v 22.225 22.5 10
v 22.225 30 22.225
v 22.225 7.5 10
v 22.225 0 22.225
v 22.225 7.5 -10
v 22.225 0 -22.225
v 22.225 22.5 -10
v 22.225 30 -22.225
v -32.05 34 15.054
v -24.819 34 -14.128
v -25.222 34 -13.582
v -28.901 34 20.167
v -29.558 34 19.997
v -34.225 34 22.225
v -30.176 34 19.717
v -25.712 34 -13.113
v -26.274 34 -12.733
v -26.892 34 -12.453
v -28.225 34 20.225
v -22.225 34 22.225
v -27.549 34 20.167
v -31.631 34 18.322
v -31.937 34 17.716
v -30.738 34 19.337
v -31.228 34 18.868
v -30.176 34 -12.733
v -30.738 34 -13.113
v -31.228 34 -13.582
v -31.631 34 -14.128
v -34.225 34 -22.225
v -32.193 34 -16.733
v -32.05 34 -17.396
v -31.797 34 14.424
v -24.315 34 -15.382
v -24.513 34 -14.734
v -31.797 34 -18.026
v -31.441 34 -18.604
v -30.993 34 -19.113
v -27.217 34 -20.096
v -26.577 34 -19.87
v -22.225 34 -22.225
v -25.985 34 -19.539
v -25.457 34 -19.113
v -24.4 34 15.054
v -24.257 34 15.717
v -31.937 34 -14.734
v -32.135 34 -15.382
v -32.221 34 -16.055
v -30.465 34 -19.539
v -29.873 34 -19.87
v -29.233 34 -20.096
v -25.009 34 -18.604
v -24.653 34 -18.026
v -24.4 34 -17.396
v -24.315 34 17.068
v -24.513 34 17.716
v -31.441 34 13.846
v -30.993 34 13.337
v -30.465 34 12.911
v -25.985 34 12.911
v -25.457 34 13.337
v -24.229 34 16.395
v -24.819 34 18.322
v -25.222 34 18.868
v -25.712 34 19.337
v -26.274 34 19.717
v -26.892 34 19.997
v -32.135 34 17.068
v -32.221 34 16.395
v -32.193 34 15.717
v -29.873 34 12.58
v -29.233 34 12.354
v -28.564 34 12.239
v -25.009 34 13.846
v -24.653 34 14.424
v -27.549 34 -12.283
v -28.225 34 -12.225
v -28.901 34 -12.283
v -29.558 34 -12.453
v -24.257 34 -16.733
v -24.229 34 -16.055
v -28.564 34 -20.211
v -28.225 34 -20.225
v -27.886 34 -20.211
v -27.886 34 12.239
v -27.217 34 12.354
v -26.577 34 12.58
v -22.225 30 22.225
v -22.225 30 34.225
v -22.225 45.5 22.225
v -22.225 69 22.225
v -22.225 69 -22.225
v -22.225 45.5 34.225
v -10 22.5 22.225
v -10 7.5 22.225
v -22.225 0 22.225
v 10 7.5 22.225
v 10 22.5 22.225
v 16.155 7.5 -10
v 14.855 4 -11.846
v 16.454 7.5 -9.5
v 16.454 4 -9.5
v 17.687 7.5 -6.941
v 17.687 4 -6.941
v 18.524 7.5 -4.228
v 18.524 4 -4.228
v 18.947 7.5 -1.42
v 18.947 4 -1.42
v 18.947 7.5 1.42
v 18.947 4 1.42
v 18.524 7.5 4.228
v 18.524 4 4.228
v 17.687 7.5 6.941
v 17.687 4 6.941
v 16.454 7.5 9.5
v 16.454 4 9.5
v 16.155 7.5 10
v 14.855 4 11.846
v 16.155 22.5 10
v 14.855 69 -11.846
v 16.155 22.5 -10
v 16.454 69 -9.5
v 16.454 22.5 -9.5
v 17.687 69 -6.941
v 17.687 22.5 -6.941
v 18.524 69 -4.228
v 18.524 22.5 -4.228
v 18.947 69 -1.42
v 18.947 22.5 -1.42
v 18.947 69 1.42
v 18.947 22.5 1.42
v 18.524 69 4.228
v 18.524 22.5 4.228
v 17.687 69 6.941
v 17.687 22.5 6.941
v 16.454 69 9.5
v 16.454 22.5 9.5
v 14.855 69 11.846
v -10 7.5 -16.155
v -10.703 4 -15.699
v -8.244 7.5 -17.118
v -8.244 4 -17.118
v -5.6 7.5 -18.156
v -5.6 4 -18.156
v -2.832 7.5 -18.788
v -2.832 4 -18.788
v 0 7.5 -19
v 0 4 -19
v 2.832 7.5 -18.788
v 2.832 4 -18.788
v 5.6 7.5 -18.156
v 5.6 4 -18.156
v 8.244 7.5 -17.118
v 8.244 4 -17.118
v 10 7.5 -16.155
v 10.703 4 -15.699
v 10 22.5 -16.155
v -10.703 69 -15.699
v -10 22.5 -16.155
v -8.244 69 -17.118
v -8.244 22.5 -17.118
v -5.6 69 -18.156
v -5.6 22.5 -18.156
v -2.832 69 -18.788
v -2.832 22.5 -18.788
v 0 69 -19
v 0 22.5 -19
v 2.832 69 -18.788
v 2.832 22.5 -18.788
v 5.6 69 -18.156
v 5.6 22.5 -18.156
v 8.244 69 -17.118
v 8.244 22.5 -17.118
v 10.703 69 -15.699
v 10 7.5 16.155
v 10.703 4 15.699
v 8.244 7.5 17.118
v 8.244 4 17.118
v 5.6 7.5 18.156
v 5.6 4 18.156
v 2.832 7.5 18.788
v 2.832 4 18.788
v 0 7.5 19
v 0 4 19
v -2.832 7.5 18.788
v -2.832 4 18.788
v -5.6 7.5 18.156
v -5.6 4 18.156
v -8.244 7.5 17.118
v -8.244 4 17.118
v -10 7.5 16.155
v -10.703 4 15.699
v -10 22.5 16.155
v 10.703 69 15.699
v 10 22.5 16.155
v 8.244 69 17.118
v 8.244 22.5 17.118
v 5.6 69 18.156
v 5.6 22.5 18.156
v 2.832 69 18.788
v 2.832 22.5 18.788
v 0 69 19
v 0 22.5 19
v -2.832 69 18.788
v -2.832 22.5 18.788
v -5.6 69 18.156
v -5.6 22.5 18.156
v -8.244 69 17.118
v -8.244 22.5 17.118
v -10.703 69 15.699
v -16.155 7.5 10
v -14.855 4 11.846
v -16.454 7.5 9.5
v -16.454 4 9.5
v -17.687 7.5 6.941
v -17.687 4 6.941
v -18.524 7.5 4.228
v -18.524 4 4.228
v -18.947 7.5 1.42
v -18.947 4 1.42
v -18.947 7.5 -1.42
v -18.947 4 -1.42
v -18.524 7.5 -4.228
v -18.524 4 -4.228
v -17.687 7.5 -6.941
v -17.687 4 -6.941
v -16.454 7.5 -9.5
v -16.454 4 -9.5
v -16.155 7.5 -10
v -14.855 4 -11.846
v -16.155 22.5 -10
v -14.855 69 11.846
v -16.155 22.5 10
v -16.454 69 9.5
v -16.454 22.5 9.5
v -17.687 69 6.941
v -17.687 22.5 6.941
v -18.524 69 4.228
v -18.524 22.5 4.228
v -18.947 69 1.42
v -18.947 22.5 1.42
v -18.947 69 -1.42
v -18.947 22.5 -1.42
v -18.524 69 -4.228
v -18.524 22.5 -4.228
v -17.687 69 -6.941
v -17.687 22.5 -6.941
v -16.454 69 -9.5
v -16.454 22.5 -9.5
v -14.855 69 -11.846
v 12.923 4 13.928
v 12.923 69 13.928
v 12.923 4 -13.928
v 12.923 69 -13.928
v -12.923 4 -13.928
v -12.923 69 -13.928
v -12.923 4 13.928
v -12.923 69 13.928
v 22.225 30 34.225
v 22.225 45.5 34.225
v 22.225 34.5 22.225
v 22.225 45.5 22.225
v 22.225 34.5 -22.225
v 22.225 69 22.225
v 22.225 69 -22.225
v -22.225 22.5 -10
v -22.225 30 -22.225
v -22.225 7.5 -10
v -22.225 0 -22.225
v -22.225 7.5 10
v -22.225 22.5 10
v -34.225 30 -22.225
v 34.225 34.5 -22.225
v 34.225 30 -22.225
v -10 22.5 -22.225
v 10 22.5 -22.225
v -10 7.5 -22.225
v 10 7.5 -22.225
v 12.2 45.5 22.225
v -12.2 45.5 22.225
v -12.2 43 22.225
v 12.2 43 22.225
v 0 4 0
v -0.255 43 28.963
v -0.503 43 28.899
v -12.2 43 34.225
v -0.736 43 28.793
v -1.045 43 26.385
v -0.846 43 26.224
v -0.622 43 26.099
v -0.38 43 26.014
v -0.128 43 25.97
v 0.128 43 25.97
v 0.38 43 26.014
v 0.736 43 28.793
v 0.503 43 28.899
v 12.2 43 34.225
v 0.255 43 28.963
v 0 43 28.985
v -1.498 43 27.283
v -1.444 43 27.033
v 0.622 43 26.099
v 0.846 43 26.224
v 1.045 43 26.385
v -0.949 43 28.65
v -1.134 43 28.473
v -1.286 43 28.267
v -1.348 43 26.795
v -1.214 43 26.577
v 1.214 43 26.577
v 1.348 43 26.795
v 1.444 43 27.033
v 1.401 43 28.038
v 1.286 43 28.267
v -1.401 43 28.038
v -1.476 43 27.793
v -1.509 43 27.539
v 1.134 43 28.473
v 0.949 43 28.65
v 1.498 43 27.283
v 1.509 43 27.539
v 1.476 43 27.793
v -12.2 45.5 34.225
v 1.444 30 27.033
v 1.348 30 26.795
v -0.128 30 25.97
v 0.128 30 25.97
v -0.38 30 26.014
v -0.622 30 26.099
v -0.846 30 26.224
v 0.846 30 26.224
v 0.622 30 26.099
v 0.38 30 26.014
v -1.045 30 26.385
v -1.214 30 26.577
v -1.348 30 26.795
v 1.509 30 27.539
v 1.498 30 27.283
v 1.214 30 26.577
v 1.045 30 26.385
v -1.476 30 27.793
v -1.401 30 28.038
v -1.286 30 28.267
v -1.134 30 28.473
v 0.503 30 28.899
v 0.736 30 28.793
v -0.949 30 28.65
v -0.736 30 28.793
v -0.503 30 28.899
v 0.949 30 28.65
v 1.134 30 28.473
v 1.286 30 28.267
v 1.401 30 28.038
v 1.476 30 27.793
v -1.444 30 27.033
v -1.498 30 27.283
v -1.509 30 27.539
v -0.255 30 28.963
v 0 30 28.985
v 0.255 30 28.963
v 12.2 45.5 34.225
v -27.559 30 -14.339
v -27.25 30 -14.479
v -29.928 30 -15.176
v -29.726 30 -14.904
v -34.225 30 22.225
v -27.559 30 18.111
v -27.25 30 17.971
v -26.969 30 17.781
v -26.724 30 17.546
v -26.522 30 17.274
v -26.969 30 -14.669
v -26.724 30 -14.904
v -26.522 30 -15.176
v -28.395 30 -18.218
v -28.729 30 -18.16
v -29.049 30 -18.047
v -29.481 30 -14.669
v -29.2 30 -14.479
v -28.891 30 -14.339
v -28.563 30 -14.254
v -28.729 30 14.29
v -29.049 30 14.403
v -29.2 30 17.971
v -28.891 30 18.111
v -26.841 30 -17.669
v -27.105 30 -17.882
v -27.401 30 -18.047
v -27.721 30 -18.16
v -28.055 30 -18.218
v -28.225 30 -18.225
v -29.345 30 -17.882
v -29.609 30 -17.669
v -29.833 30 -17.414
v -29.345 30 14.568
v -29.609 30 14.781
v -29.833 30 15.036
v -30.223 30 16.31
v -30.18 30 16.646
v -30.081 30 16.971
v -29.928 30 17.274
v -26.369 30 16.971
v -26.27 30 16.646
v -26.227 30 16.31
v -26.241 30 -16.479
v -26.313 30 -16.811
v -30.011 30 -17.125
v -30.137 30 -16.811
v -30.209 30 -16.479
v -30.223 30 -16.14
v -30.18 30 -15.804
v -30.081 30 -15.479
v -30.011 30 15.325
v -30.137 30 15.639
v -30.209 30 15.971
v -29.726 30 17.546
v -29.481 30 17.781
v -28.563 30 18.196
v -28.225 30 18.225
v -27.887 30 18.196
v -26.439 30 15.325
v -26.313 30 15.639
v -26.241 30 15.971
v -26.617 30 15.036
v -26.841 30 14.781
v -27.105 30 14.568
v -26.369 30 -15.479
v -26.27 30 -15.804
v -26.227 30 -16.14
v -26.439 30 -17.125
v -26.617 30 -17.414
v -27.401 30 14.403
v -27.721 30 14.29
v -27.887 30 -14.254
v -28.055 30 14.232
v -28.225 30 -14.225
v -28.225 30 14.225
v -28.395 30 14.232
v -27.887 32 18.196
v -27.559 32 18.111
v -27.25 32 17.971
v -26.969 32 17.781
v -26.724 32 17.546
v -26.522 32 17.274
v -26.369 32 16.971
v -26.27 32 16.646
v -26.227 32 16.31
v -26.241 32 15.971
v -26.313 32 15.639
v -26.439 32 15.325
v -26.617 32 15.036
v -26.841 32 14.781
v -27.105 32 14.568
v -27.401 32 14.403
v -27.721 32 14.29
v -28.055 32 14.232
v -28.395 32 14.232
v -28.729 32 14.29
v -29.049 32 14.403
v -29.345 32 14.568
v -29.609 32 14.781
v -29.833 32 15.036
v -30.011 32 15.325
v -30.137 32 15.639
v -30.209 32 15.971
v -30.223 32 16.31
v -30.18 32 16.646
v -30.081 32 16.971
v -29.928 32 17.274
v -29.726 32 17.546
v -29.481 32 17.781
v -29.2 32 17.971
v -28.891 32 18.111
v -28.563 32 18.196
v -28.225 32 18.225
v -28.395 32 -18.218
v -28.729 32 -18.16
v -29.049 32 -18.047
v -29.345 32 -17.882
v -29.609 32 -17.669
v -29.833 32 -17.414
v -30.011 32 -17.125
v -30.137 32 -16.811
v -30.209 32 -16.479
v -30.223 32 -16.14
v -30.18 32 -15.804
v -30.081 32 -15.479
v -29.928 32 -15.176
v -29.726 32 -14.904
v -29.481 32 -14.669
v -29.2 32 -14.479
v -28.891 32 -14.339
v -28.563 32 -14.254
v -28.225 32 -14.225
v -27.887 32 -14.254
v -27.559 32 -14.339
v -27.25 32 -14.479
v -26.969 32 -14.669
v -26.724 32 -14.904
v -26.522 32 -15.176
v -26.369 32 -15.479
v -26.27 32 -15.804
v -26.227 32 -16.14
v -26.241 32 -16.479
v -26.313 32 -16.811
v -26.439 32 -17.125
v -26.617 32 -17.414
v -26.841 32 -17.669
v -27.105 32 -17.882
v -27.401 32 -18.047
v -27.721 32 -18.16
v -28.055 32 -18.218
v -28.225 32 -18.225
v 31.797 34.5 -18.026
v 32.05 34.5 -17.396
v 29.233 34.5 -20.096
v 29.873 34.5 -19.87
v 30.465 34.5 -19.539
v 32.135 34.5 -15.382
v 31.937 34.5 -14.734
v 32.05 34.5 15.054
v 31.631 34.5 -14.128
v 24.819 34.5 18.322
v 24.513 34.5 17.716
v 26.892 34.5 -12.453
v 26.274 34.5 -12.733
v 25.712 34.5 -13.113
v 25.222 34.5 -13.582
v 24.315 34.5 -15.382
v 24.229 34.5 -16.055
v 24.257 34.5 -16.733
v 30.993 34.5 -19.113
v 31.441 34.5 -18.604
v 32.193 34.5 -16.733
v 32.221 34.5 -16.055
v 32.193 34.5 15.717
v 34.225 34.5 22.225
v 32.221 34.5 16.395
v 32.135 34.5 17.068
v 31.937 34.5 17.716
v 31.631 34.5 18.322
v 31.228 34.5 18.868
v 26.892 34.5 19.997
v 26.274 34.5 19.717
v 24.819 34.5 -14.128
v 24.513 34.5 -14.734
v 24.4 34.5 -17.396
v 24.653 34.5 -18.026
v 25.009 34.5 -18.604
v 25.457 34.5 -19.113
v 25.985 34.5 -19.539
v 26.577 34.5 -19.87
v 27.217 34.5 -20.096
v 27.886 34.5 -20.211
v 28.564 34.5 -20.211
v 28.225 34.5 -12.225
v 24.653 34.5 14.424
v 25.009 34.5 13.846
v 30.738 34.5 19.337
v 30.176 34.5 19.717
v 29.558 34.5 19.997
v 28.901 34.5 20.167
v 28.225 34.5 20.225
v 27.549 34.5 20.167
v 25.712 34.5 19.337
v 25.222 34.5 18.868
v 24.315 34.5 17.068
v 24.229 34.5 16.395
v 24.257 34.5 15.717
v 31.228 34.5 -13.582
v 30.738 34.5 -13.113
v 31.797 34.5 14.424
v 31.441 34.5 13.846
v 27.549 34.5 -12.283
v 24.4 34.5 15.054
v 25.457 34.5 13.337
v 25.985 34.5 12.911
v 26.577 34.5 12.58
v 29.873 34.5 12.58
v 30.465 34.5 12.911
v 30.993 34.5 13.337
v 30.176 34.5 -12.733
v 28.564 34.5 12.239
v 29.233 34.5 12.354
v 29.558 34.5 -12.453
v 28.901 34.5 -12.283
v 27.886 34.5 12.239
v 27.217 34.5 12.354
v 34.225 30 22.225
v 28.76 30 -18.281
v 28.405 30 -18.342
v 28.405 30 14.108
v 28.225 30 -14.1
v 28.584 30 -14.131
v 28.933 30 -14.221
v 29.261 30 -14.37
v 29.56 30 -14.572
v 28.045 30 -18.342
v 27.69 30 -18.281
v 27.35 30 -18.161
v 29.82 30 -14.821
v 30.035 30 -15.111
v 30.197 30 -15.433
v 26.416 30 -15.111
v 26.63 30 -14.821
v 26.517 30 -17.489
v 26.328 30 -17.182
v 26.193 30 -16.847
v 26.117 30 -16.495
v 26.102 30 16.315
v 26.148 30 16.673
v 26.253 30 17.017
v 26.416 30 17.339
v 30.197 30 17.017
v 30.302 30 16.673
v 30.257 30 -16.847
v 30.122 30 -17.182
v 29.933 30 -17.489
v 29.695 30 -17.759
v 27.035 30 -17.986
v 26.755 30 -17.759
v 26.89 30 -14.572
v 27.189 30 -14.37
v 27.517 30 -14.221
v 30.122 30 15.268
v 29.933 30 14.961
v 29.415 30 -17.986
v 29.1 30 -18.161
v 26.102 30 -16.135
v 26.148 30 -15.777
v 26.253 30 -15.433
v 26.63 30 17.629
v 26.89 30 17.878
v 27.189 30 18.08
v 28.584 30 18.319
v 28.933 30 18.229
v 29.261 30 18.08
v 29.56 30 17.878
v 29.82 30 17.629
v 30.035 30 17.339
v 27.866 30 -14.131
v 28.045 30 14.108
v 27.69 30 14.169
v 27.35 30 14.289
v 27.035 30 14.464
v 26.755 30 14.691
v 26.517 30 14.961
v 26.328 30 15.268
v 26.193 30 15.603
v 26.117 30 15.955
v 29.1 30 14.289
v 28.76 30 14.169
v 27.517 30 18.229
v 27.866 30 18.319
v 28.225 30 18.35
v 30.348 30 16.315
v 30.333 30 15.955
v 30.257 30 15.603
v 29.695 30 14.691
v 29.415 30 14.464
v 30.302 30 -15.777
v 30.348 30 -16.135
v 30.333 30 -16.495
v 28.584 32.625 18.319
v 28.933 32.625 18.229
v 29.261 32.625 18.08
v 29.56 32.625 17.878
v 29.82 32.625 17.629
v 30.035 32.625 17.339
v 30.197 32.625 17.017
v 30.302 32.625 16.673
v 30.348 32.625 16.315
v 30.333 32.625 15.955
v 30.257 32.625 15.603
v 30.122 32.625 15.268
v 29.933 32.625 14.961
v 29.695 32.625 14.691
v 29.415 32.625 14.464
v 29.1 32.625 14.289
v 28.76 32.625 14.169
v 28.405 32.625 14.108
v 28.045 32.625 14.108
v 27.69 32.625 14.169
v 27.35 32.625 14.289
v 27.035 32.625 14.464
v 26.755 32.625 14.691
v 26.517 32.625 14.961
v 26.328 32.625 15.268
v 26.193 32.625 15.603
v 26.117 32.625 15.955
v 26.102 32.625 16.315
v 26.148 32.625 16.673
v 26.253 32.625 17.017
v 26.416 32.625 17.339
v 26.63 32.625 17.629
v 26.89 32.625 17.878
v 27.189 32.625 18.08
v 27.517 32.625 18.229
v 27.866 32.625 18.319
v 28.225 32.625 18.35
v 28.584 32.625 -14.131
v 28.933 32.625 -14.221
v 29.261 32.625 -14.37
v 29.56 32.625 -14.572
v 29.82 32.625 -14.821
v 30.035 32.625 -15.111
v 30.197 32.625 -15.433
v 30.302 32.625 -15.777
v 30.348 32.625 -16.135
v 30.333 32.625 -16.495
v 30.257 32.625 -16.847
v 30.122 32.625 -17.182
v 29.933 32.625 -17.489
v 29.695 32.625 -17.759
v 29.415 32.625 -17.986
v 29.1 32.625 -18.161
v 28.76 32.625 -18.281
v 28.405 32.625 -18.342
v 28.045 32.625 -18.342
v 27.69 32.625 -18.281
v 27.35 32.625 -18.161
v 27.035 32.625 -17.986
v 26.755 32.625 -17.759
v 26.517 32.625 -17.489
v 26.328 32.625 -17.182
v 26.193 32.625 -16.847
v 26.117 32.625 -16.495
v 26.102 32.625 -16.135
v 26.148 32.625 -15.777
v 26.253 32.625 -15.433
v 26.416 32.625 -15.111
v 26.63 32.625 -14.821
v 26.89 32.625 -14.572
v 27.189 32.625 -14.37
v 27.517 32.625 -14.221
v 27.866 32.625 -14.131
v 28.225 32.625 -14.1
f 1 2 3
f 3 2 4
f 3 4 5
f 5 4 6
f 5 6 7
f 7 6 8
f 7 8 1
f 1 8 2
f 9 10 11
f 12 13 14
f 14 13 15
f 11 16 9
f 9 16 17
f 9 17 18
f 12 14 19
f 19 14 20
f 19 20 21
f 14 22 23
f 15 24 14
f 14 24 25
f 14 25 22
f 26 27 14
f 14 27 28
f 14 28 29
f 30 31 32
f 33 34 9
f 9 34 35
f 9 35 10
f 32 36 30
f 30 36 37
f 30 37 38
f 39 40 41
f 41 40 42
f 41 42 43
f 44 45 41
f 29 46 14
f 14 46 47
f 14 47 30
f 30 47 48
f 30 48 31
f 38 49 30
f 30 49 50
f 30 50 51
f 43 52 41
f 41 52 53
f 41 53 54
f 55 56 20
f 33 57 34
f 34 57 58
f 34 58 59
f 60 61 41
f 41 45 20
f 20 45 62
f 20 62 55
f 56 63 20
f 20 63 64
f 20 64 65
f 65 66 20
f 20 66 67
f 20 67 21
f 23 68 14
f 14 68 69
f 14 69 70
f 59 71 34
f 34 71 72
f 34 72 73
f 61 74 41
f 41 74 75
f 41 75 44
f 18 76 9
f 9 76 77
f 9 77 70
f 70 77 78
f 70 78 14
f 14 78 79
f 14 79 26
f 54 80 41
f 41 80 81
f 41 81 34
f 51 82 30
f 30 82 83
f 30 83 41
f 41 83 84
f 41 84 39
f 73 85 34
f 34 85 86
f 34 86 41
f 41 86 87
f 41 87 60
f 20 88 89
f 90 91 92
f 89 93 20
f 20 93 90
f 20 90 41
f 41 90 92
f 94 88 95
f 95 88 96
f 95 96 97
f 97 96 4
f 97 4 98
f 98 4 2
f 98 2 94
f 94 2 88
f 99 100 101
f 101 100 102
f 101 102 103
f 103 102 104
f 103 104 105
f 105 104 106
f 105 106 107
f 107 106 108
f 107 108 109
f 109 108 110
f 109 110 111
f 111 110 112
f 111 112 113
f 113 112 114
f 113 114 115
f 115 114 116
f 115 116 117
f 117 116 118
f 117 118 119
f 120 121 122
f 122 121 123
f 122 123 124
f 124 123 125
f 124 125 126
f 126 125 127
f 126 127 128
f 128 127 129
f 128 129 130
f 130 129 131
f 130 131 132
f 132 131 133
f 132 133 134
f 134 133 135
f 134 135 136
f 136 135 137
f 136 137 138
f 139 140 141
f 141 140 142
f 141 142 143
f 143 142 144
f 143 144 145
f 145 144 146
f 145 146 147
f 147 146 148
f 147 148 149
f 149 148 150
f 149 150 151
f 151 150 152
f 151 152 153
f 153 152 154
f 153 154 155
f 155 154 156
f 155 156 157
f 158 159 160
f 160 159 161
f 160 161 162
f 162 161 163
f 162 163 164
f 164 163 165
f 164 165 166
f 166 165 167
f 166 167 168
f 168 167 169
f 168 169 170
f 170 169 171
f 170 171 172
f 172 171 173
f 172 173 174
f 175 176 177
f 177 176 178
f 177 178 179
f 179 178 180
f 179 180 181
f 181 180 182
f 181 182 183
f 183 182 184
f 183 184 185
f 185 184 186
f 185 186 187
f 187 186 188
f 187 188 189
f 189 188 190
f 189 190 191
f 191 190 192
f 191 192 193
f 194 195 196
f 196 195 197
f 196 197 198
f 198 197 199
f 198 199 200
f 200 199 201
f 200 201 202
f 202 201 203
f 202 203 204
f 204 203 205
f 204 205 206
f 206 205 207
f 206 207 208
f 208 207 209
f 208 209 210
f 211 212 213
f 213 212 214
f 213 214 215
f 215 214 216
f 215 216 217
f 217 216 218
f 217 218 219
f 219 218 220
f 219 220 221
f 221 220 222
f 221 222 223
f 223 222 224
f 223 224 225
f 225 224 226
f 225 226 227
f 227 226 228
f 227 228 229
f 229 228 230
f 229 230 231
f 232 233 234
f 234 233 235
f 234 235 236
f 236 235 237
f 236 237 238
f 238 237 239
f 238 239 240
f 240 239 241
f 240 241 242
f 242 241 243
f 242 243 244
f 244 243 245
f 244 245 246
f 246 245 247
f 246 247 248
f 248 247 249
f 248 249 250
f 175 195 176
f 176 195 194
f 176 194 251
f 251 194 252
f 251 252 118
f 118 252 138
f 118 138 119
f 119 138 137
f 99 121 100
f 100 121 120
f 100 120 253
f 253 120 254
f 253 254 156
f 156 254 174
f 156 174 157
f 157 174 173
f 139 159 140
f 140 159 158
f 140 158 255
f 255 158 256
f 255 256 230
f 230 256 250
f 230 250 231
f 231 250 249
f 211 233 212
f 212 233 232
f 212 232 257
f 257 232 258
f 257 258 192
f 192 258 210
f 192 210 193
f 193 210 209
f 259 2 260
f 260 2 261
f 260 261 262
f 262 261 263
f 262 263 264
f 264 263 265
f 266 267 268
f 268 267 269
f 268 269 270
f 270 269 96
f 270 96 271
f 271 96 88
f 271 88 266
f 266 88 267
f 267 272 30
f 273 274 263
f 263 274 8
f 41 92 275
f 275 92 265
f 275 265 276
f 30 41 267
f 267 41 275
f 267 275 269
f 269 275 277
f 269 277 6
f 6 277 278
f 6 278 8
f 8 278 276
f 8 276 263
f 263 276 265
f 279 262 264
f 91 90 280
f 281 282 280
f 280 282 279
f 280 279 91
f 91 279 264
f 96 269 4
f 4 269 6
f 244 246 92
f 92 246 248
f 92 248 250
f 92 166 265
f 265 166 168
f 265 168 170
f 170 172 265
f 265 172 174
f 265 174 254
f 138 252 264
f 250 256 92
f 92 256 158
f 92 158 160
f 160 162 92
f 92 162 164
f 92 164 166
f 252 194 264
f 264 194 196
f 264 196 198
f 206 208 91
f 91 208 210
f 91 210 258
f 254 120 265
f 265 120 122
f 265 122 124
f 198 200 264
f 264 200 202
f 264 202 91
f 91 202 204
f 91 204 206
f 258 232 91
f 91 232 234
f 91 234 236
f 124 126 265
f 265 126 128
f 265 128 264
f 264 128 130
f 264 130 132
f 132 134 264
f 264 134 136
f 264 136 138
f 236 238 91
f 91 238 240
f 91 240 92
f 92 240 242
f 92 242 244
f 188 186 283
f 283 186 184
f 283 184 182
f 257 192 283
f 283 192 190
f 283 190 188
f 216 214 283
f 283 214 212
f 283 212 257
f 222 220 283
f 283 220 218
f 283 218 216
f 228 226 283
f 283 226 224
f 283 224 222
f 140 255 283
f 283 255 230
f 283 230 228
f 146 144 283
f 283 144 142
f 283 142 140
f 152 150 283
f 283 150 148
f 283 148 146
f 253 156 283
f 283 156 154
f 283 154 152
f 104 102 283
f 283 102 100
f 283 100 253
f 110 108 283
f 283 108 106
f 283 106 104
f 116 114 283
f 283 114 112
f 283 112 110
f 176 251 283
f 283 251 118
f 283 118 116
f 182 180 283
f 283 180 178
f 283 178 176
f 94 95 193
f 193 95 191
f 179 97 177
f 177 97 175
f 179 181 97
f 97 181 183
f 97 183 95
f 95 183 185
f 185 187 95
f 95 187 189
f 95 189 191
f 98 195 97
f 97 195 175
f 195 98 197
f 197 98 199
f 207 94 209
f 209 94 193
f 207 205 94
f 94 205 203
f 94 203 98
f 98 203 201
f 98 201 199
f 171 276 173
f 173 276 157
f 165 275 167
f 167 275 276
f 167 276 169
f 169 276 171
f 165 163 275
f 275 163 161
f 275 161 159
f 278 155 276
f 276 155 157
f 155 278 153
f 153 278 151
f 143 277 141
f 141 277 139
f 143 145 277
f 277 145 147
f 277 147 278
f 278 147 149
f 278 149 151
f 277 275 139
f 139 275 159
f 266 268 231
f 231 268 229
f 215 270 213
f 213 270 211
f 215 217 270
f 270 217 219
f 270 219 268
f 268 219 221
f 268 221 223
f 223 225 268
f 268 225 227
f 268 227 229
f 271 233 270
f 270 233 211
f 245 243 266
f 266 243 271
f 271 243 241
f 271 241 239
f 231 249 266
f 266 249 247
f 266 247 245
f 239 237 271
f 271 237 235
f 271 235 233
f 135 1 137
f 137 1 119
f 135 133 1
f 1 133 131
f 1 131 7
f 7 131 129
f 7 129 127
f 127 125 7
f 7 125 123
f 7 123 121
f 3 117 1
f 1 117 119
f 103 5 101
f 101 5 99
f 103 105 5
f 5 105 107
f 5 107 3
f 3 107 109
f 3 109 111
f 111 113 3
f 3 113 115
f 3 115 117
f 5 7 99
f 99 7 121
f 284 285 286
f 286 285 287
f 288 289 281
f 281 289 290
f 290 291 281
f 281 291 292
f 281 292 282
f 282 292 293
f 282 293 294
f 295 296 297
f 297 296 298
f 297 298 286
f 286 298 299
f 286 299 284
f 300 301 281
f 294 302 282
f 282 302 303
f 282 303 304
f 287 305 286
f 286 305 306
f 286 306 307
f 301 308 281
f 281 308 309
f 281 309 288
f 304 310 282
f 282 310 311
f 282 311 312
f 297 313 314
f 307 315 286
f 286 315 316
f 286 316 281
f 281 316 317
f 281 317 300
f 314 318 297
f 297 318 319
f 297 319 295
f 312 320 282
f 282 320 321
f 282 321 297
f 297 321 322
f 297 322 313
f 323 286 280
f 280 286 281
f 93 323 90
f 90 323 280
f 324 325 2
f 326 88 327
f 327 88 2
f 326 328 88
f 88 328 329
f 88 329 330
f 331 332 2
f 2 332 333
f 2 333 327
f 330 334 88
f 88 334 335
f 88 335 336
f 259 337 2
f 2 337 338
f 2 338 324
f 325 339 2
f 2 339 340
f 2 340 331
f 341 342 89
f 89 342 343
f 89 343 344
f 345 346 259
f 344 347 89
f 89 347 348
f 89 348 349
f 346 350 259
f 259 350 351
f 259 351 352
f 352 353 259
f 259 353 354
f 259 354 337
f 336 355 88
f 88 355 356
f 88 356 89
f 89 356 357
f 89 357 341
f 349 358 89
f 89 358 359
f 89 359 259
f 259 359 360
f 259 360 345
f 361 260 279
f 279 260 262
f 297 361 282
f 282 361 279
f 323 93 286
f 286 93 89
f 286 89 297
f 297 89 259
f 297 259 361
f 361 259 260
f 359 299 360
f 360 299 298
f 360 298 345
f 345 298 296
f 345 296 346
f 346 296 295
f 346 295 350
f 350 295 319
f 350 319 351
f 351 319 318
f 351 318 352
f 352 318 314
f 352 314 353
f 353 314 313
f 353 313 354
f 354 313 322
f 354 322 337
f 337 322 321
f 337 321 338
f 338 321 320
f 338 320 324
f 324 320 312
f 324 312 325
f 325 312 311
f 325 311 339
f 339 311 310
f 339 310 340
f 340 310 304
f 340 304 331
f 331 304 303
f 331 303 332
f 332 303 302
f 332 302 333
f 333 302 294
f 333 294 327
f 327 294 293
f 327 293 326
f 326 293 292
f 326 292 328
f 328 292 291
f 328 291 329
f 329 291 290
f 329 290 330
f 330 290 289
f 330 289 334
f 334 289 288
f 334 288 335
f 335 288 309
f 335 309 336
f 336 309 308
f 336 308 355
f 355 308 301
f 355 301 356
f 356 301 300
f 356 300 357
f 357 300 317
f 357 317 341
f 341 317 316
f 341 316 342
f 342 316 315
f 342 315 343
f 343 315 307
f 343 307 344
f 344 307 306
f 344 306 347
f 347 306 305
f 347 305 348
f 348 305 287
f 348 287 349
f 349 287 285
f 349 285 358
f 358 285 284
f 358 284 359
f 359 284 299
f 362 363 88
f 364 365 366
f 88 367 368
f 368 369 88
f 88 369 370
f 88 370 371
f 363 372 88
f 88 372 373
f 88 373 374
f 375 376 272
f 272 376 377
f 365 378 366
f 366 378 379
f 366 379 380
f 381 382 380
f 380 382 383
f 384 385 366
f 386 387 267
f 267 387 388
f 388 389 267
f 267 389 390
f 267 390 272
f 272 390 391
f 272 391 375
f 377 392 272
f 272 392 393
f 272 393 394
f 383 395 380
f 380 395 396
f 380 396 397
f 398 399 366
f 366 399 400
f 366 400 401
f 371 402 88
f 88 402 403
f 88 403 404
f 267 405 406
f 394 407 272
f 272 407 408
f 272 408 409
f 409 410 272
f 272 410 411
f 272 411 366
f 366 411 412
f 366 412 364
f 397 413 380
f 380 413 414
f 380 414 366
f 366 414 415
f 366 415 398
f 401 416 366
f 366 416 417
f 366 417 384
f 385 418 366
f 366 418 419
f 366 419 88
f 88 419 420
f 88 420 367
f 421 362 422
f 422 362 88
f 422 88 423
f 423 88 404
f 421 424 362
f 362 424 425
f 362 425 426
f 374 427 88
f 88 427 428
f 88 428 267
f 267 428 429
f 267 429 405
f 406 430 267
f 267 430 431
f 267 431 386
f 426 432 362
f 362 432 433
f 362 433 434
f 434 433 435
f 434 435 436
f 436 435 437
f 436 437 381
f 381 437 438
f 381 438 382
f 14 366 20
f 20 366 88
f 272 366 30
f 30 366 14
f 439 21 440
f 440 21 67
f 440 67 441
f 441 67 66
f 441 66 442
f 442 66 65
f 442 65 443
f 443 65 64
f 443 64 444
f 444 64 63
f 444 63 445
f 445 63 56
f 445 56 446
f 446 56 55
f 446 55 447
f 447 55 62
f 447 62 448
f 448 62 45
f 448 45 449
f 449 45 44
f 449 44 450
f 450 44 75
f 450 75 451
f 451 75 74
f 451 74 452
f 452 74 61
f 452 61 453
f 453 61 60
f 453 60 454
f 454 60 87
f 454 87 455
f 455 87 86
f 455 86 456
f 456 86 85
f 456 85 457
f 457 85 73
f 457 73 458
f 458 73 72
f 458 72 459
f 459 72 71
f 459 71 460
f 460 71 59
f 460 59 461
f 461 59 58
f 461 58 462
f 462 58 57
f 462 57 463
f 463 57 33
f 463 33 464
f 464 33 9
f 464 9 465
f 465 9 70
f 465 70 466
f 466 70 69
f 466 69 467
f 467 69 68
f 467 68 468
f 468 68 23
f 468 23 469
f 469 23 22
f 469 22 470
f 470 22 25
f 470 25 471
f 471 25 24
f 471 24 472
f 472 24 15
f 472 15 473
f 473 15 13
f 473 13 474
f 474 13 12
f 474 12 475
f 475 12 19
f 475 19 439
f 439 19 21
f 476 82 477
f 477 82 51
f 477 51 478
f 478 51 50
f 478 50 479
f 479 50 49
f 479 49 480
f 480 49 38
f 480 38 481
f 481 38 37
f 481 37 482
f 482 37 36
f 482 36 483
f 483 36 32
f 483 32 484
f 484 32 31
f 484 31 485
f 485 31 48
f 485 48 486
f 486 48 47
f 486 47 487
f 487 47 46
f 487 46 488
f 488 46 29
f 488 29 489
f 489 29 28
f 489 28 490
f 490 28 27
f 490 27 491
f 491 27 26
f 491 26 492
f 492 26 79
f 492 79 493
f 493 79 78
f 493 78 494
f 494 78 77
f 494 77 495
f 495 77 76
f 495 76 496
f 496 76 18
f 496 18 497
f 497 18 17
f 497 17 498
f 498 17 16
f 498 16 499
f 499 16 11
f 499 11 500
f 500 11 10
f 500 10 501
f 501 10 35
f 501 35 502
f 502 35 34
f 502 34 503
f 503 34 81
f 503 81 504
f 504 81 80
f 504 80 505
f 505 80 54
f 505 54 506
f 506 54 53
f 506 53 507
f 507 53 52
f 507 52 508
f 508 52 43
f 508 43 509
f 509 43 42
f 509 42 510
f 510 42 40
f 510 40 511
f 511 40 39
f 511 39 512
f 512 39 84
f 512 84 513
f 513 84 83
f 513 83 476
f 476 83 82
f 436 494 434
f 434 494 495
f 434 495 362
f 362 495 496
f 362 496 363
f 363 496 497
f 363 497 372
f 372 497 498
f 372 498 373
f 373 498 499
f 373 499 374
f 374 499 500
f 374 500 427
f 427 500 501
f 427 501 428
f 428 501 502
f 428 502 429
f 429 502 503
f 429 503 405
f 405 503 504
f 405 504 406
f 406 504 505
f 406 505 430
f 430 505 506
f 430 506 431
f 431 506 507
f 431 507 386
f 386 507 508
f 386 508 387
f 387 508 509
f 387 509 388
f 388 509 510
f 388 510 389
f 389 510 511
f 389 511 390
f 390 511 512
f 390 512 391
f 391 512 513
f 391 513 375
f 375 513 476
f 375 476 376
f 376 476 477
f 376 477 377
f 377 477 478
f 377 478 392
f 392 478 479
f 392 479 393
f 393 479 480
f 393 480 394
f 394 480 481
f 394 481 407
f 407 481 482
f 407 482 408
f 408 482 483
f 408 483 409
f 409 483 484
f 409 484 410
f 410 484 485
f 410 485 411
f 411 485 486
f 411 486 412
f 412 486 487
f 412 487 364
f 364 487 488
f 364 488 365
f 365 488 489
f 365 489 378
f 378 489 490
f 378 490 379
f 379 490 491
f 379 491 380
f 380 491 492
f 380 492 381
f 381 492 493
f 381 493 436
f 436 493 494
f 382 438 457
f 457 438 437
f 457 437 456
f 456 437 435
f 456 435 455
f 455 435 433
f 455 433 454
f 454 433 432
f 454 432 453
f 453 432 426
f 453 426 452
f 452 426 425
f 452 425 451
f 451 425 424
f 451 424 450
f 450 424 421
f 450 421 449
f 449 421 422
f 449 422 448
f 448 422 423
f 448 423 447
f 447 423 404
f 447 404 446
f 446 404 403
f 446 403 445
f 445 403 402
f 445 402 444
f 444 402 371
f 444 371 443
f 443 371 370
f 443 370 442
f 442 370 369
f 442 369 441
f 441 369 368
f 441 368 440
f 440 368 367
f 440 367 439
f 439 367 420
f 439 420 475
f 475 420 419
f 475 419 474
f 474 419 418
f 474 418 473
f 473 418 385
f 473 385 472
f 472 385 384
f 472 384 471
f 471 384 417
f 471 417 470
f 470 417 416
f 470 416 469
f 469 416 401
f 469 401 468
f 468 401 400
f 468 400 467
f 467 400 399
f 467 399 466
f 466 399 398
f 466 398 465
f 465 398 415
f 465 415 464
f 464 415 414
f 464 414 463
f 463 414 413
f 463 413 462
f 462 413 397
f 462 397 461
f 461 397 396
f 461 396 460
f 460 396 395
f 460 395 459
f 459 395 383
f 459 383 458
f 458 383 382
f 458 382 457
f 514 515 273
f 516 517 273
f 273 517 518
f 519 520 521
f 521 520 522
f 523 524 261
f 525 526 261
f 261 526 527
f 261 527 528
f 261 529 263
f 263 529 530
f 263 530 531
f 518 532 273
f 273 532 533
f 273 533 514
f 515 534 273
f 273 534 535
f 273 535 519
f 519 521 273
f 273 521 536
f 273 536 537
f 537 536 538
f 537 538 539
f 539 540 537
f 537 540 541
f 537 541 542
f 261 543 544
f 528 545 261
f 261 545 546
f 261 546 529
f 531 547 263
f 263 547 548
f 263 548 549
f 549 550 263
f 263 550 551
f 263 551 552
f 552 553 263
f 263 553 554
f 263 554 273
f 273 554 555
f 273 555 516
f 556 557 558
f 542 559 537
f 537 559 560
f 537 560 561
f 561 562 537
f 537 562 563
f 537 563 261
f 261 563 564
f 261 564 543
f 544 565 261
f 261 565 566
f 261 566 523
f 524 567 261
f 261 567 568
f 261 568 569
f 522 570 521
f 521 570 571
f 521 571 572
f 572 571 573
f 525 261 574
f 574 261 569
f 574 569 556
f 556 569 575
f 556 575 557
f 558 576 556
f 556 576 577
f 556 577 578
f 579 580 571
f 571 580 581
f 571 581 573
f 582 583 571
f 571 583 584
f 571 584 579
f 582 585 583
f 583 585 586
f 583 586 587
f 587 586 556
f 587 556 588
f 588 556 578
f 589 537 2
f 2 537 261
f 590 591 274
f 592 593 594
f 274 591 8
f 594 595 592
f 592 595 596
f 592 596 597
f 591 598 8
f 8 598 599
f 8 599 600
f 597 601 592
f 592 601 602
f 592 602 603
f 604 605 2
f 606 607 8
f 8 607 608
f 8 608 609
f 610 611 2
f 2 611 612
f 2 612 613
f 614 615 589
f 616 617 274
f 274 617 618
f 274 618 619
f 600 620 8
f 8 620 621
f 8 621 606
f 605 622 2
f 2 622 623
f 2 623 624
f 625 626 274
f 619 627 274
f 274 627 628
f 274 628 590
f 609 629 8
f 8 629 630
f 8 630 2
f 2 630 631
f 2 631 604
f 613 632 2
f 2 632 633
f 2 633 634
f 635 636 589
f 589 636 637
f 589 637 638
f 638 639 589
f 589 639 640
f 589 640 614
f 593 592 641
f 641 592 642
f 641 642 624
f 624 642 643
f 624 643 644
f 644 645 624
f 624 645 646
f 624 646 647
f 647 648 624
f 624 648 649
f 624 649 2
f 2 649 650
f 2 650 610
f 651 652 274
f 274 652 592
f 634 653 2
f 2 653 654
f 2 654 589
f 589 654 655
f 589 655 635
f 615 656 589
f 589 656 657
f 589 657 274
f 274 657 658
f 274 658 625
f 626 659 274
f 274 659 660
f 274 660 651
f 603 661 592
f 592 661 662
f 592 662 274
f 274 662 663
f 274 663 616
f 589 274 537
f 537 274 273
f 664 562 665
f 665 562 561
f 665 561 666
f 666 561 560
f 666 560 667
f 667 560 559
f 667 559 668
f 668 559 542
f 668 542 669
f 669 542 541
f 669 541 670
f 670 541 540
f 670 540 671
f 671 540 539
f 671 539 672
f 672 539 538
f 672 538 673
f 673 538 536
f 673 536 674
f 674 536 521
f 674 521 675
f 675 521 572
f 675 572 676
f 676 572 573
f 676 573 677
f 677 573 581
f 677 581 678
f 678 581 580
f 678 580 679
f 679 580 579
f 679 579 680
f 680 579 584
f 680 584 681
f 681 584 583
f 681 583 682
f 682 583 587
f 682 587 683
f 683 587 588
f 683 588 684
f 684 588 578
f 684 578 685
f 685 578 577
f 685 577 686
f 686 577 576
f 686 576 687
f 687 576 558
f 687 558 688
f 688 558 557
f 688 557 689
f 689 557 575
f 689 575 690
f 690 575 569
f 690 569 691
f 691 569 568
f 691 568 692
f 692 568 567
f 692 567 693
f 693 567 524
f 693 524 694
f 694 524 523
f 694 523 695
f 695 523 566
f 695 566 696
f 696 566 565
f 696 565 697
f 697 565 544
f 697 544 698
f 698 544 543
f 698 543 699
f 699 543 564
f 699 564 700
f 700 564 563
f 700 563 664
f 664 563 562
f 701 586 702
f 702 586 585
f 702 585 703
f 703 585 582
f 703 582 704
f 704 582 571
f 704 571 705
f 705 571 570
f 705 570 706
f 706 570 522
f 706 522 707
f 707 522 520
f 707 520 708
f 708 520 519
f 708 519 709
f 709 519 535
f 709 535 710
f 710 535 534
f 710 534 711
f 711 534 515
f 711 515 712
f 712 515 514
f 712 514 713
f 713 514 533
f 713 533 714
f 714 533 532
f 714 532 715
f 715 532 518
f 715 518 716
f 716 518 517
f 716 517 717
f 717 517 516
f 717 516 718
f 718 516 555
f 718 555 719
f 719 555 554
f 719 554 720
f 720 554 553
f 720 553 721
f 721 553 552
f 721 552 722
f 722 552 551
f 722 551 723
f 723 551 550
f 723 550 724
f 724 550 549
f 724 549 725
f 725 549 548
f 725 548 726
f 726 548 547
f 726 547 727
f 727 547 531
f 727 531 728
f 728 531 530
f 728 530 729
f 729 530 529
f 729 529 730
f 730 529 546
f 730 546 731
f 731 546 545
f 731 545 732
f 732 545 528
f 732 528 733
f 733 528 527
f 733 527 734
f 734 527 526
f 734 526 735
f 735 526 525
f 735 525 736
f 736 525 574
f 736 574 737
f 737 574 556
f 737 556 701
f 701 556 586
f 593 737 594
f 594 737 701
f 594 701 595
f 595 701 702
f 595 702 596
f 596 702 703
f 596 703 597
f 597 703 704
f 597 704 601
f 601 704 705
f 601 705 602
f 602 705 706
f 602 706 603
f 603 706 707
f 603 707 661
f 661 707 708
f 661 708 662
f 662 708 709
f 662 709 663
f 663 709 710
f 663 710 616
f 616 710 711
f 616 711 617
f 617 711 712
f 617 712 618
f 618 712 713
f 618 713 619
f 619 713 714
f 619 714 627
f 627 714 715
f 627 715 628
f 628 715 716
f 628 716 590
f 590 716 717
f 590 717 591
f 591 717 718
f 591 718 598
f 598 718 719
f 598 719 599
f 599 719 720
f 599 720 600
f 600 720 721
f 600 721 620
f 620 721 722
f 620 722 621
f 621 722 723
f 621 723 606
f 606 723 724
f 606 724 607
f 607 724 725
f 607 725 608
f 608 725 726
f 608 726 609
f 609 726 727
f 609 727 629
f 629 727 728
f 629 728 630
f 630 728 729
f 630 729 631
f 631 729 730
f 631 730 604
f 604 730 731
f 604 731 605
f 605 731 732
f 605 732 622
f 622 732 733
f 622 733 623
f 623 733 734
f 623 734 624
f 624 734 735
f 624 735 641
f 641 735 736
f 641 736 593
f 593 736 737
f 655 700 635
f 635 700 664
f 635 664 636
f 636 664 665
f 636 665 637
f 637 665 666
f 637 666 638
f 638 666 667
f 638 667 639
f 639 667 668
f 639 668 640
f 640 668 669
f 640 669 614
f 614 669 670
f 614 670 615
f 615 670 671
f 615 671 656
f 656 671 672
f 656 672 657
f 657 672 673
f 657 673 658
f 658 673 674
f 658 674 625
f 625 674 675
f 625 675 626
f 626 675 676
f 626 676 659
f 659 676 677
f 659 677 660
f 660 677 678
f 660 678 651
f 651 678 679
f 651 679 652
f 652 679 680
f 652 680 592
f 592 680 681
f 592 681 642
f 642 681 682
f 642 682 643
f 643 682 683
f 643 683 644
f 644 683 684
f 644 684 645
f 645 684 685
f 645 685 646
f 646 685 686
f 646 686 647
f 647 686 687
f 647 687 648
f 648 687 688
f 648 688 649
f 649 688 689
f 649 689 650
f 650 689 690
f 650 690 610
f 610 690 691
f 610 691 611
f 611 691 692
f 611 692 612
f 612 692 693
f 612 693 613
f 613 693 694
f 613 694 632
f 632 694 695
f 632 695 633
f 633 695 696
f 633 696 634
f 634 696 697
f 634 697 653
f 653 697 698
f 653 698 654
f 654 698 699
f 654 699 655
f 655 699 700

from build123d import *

# Parameters (mm, degrees)
SKETCH1_W                     = 44.45
SKETCH1_H                     = 44.45
BOSS_EXTRUDE1_DEPTH           = 90
SKETCH2_R                     = 19
CUT_EXTRUDE1_DEPTH            = 45
SKETCH3_R                     = 19
CUT_EXTRUDE2_DEPTH            = 41
SKETCH4_W                     = 44.45
SKETCH4_H                     = 44.45
CUT_EXTRUDE3_DEPTH            = 21
SKETCH6_W                     = 20
SKETCH6_H                     = 15
CUT_EXTRUDE4_DEPTH            = 86.033835178
SKETCH8_W                     = 20
SKETCH8_H                     = 15
CUT_EXTRUDE5_DEPTH            = 86.033835178
BOSS_EXTRUDE2_DEPTH           = 12
SKETCH20_R                    = 1.51
CUT_EXTRUDE6_DEPTH            = 13
SKETCH21_W                    = 44.45
SKETCH21_H                    = 4
BOSS_EXTRUDE4_DEPTH           = 12
SKETCH22_R                    = 4
CUT_EXTRUDE11_DEPTH           = 2
CUT_EXTRUDE11_DRAFT           = -45
CUT_EXTRUDE11_PROFILE_2_DEPTH = 2
CUT_EXTRUDE11_PROFILE_2_DRAFT = -45
CUT_EXTRUDE11_PROFILE_3_DEPTH = 2
CUT_EXTRUDE11_PROFILE_3_DRAFT = -45
CUT_EXTRUDE11_PROFILE_4_DEPTH = 2
CUT_EXTRUDE11_PROFILE_4_DRAFT = -45
SKETCH23_R                    = 2
CUT_EXTRUDE12_DEPTH           = 12
SKETCH24_W                    = 44.45
SKETCH24_H                    = 4.5
BOSS_EXTRUDE5_DEPTH           = 12
SKETCH25_R                    = 4
CUT_EXTRUDE13_DEPTH           = 2
CUT_EXTRUDE13_DRAFT           = -45
CUT_EXTRUDE13_PROFILE_2_DEPTH = 2
CUT_EXTRUDE13_PROFILE_2_DRAFT = -45
SKETCH26_R                    = 2.125
CUT_EXTRUDE14_DEPTH           = 12


with BuildPart() as part:
    # Sketch1 → Boss-Extrude1 (new body)
    with BuildSketch(Plane(origin=(0, 0, 0), x_dir=(1, 0, 0), z_dir=(0, 1, 0))):
        Rectangle(SKETCH1_W, SKETCH1_H)
    extrude(amount=BOSS_EXTRUDE1_DEPTH)

    # Sketch2 → Cut-Extrude1 (cut)
    with BuildSketch(Plane(origin=(0, 90, 0), x_dir=(1, 0, 0), z_dir=(0, 1, 0))):
        with Locations(Location((0, 0, 0), (0, 0, 270))):
            Circle(SKETCH2_R)
    extrude(amount=-CUT_EXTRUDE1_DEPTH, mode=Mode.SUBTRACT)

    # Sketch3 → Cut-Extrude2 (cut)
    with BuildSketch(Plane(origin=(0, 45, 0), x_dir=(1, 0, 0), z_dir=(0, 1, 0))):
        with Locations(Location((0, 0, 0), (0, 0, 270))):
            Circle(SKETCH3_R)
    extrude(amount=-CUT_EXTRUDE2_DEPTH, mode=Mode.SUBTRACT)

    # Sketch4 → Cut-Extrude3 (cut)
    with BuildSketch(Plane(origin=(0, 90, 0), x_dir=(1, 0, 0), z_dir=(0, 1, 0))):
        Rectangle(SKETCH4_W, SKETCH4_H)
    extrude(amount=-CUT_EXTRUDE3_DEPTH, mode=Mode.SUBTRACT)

    # Sketch6 → Cut-Extrude4 (cut, through all)
    with BuildSketch(Plane.XY.offset(22.225)):
        with Locations((0, 15)):
            Rectangle(SKETCH6_W, SKETCH6_H)
    extrude(amount=-CUT_EXTRUDE4_DEPTH, mode=Mode.SUBTRACT)

    # Sketch8 → Cut-Extrude5 (cut, through all)
    with BuildSketch(Plane.ZY.offset(22.225)):
        with Locations((0, 15)):
            Rectangle(SKETCH8_W, SKETCH8_H)
    extrude(amount=-CUT_EXTRUDE5_DEPTH, mode=Mode.SUBTRACT)

    # Sketch18 → Boss-Extrude2 (add)
    with BuildSketch(Plane.XY.offset(22.225)):
        Polygon((12.2, 45.5), (22.225, 45.5), (22.225, 30), (-22.225, 30), (-22.225, 45.5), (-12.2, 45.5), (-12.2, 43), (12.2, 43), align=None)
    extrude(amount=BOSS_EXTRUDE2_DEPTH)

    # Sketch20 → Cut-Extrude6 (cut)
    with BuildSketch(Plane(origin=(0, 43, 0), x_dir=(1, 0, 0), z_dir=(0, 1, 0))):
        with Locations(Location((0, -27.475, 0), (0, 0, 270))):
            Circle(SKETCH20_R)
    extrude(amount=-CUT_EXTRUDE6_DEPTH, mode=Mode.SUBTRACT)

    # Sketch21 → Boss-Extrude4 (add)
    with BuildSketch(Plane.ZY.offset(22.225)):
        with Locations((0, 32)):
            Rectangle(SKETCH21_W, SKETCH21_H)
    extrude(amount=BOSS_EXTRUDE4_DEPTH)


with BuildPart() as cut_extrude11_tool:
    # Sketch22 → Cut-Extrude11 (with draft: the straight prism first)
    with BuildSketch(Plane(origin=(0, 34, 0), x_dir=(1, 0, 0), z_dir=(0, 1, 0))):
        with Locations((-28.225, -16.225)):
            Circle(SKETCH22_R)
    extrude(amount=-CUT_EXTRUDE11_DEPTH)
    # Cut-Extrude11: the draft: its side faces are tilted about the plane it starts from
    cut_extrude11_sides = [cut_extrude11_tool.faces().sort_by_distance(p)[0] for p in [
        (-32.225, 33, 16.225),
    ]]
    draft(cut_extrude11_sides, Plane(origin=(0, 34, 0), x_dir=(1, 0, 0), z_dir=(0, 1, 0)), CUT_EXTRUDE11_DRAFT)


with BuildPart() as part_1:
    add(part.part)

    # Cut-Extrude11: cut by cut_extrude11_tool
    add(cut_extrude11_tool.part, mode=Mode.SUBTRACT)


with BuildPart() as cut_extrude11_profile_2_tool:
    # Sketch22 → Cut-Extrude11 profile 2 (with draft: the straight prism first)
    with BuildSketch(Plane(origin=(0, 34, 0), x_dir=(1, 0, 0), z_dir=(0, 1, 0))):
        with Locations((-28.225, 16.225)):
            Circle(SKETCH22_R)
    extrude(amount=-CUT_EXTRUDE11_PROFILE_2_DEPTH)
    # Cut-Extrude11 profile 2: the draft: its side faces are tilted about the plane it starts from
    cut_extrude11_profile_2_sides = [cut_extrude11_profile_2_tool.faces().sort_by_distance(p)[0] for p in [
        (-32.225, 33, -16.225),
    ]]
    draft(cut_extrude11_profile_2_sides, Plane(origin=(0, 34, 0), x_dir=(1, 0, 0), z_dir=(0, 1, 0)), CUT_EXTRUDE11_PROFILE_2_DRAFT)


with BuildPart() as part_2:
    add(part_1.part)

    # Cut-Extrude11 profile 2: cut by cut_extrude11_profile_2_tool
    add(cut_extrude11_profile_2_tool.part, mode=Mode.SUBTRACT)


with BuildPart() as cut_extrude11_profile_3_tool:
    # Sketch22 → Cut-Extrude11 profile 3 (with draft: the straight prism first)
    with BuildSketch(Plane(origin=(0, 34, 0), x_dir=(1, 0, 0), z_dir=(0, 1, 0))):
        with Locations((28.225, -16.225)):
            Circle(SKETCH22_R)
    extrude(amount=-CUT_EXTRUDE11_PROFILE_3_DEPTH)
    # Cut-Extrude11 profile 3: the draft: its side faces are tilted about the plane it starts from
    cut_extrude11_profile_3_sides = [cut_extrude11_profile_3_tool.faces().sort_by_distance(p)[0] for p in [
        (24.225, 33, 16.225),
    ]]
    draft(cut_extrude11_profile_3_sides, Plane(origin=(0, 34, 0), x_dir=(1, 0, 0), z_dir=(0, 1, 0)), CUT_EXTRUDE11_PROFILE_3_DRAFT)


with BuildPart() as part_3:
    add(part_2.part)

    # Cut-Extrude11 profile 3: cut by cut_extrude11_profile_3_tool
    add(cut_extrude11_profile_3_tool.part, mode=Mode.SUBTRACT)


with BuildPart() as cut_extrude11_profile_4_tool:
    # Sketch22 → Cut-Extrude11 profile 4 (with draft: the straight prism first)
    with BuildSketch(Plane(origin=(0, 34, 0), x_dir=(1, 0, 0), z_dir=(0, 1, 0))):
        with Locations((28.225, 16.225)):
            Circle(SKETCH22_R)
    extrude(amount=-CUT_EXTRUDE11_PROFILE_4_DEPTH)
    # Cut-Extrude11 profile 4: the draft: its side faces are tilted about the plane it starts from
    cut_extrude11_profile_4_sides = [cut_extrude11_profile_4_tool.faces().sort_by_distance(p)[0] for p in [
        (24.225, 33, -16.225),
    ]]
    draft(cut_extrude11_profile_4_sides, Plane(origin=(0, 34, 0), x_dir=(1, 0, 0), z_dir=(0, 1, 0)), CUT_EXTRUDE11_PROFILE_4_DRAFT)


with BuildPart() as part_4:
    add(part_3.part)

    # Cut-Extrude11 profile 4: cut by cut_extrude11_profile_4_tool
    add(cut_extrude11_profile_4_tool.part, mode=Mode.SUBTRACT)

    # Sketch23 → Cut-Extrude12 (cut)
    with BuildSketch(Plane(origin=(0, 34, 0), x_dir=(1, 0, 0), z_dir=(0, 1, 0))):
        with Locations(Location((-28.225, -16.225, 0), (0, 0, 270))):
            Circle(SKETCH23_R)
        with Locations(Location((-28.225, 16.225, 0), (0, 0, 90))):
            Circle(SKETCH23_R)
    extrude(amount=-CUT_EXTRUDE12_DEPTH, mode=Mode.SUBTRACT)

    # Sketch24 → Boss-Extrude5 (add)
    with BuildSketch(Plane(origin=(22.225, 0, 0), x_dir=(0, 0, -1), z_dir=(1, 0, 0))):
        with Locations((0, 32.25)):
            Rectangle(SKETCH24_W, SKETCH24_H)
    extrude(amount=BOSS_EXTRUDE5_DEPTH)


with BuildPart() as cut_extrude13_tool:
    # Sketch25 → Cut-Extrude13 (with draft: the straight prism first)
    with BuildSketch(Plane(origin=(0, 34.5, 0), x_dir=(1, 0, 0), z_dir=(0, 1, 0))):
        with Locations((28.225, 16.225)):
            Circle(SKETCH25_R)
    extrude(amount=-CUT_EXTRUDE13_DEPTH)
    # Cut-Extrude13: the draft: its side faces are tilted about the plane it starts from
    cut_extrude13_sides = [cut_extrude13_tool.faces().sort_by_distance(p)[0] for p in [
        (24.225, 33.5, -16.225),
    ]]
    draft(cut_extrude13_sides, Plane(origin=(0, 34.5, 0), x_dir=(1, 0, 0), z_dir=(0, 1, 0)), CUT_EXTRUDE13_DRAFT)


with BuildPart() as part_5:
    add(part_4.part)

    # Cut-Extrude13: cut by cut_extrude13_tool
    add(cut_extrude13_tool.part, mode=Mode.SUBTRACT)


with BuildPart() as cut_extrude13_profile_2_tool:
    # Sketch25 → Cut-Extrude13 profile 2 (with draft: the straight prism first)
    with BuildSketch(Plane(origin=(0, 34.5, 0), x_dir=(1, 0, 0), z_dir=(0, 1, 0))):
        with Locations((28.225, -16.225)):
            Circle(SKETCH25_R)
    extrude(amount=-CUT_EXTRUDE13_PROFILE_2_DEPTH)
    # Cut-Extrude13 profile 2: the draft: its side faces are tilted about the plane it starts from
    cut_extrude13_profile_2_sides = [cut_extrude13_profile_2_tool.faces().sort_by_distance(p)[0] for p in [
        (24.225, 33.5, 16.225),
    ]]
    draft(cut_extrude13_profile_2_sides, Plane(origin=(0, 34.5, 0), x_dir=(1, 0, 0), z_dir=(0, 1, 0)), CUT_EXTRUDE13_PROFILE_2_DRAFT)


with BuildPart() as part_6:
    add(part_5.part)

    # Cut-Extrude13 profile 2: cut by cut_extrude13_profile_2_tool
    add(cut_extrude13_profile_2_tool.part, mode=Mode.SUBTRACT)

    # Sketch26 → Cut-Extrude14 (cut)
    with BuildSketch(Plane(origin=(0, 34.5, 0), x_dir=(1, 0, 0), z_dir=(0, 1, 0))):
        with Locations(Location((28.225, 16.225, 0), (0, 0, 270))):
            Circle(SKETCH26_R)
        with Locations(Location((28.225, -16.225, 0), (0, 0, 270))):
            Circle(SKETCH26_R)
    extrude(amount=-CUT_EXTRUDE14_DEPTH, mode=Mode.SUBTRACT)


solid = part_6.part
